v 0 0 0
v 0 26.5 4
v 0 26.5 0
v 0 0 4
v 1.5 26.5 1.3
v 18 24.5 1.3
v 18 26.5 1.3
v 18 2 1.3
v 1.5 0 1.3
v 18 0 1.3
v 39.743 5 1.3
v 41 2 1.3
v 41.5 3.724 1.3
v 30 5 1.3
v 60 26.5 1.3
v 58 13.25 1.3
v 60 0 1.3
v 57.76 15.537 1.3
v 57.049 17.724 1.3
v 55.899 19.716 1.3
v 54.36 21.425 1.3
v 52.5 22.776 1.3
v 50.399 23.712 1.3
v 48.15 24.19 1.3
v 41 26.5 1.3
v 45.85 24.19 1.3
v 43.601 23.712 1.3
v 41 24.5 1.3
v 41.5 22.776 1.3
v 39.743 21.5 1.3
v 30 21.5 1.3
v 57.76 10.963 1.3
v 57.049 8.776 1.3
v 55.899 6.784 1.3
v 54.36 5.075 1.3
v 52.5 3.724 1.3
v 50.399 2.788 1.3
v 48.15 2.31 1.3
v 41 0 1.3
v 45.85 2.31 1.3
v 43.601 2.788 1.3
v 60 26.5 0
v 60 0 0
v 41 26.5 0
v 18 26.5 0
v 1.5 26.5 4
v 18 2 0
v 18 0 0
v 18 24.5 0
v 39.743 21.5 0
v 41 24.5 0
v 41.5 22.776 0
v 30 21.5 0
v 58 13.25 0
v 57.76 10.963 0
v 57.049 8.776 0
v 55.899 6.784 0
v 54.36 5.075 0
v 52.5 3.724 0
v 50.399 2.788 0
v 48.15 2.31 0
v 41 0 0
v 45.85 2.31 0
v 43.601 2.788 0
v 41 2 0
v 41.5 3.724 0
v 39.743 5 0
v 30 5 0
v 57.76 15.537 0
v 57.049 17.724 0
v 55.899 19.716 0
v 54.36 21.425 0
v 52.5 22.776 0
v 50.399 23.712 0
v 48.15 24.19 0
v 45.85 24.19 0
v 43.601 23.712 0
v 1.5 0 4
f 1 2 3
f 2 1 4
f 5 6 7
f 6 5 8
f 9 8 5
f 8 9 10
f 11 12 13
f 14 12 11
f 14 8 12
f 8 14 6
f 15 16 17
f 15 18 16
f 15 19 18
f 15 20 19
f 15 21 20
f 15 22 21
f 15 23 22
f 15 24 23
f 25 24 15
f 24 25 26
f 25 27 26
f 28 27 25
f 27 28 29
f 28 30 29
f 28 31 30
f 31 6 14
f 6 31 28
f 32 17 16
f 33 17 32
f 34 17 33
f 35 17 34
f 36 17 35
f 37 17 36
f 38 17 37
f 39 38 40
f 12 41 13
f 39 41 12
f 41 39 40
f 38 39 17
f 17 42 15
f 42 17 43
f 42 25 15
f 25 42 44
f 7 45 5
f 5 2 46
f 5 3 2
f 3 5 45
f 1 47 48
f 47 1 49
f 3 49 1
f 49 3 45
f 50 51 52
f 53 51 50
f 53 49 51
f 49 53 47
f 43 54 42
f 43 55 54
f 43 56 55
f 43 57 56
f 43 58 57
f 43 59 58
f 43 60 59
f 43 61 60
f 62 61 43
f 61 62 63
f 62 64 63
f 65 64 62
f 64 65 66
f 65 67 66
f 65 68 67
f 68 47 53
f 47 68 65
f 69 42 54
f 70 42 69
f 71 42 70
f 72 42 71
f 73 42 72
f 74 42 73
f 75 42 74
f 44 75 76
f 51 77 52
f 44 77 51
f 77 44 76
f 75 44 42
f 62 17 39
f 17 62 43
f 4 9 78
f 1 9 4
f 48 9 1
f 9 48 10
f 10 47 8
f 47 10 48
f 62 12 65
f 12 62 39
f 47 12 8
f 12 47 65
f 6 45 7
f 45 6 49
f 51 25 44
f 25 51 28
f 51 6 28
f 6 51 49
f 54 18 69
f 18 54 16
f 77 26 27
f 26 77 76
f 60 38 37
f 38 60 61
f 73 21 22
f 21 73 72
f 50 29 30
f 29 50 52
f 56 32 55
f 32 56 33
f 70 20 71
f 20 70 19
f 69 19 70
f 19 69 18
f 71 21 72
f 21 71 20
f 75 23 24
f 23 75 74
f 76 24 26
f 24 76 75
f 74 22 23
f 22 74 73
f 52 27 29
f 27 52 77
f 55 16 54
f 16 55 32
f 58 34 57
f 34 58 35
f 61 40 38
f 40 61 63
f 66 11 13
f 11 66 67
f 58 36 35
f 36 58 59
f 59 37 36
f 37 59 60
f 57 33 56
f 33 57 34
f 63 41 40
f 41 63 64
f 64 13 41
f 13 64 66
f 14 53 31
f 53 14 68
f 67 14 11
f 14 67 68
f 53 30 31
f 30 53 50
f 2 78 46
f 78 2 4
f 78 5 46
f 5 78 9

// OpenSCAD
cube([1.5,26.5,4]);
difference() {
cube([60,26.5,1.3]);
translate([18,0,0]) cube([23,2,5]);
translate([18,24.5,0]) cube([23,2,5]);
translate([47,26.5/2,0]) cylinder(h=5, r=11);
translate([30,5,0]) cube([10,16.5,25]);
}
